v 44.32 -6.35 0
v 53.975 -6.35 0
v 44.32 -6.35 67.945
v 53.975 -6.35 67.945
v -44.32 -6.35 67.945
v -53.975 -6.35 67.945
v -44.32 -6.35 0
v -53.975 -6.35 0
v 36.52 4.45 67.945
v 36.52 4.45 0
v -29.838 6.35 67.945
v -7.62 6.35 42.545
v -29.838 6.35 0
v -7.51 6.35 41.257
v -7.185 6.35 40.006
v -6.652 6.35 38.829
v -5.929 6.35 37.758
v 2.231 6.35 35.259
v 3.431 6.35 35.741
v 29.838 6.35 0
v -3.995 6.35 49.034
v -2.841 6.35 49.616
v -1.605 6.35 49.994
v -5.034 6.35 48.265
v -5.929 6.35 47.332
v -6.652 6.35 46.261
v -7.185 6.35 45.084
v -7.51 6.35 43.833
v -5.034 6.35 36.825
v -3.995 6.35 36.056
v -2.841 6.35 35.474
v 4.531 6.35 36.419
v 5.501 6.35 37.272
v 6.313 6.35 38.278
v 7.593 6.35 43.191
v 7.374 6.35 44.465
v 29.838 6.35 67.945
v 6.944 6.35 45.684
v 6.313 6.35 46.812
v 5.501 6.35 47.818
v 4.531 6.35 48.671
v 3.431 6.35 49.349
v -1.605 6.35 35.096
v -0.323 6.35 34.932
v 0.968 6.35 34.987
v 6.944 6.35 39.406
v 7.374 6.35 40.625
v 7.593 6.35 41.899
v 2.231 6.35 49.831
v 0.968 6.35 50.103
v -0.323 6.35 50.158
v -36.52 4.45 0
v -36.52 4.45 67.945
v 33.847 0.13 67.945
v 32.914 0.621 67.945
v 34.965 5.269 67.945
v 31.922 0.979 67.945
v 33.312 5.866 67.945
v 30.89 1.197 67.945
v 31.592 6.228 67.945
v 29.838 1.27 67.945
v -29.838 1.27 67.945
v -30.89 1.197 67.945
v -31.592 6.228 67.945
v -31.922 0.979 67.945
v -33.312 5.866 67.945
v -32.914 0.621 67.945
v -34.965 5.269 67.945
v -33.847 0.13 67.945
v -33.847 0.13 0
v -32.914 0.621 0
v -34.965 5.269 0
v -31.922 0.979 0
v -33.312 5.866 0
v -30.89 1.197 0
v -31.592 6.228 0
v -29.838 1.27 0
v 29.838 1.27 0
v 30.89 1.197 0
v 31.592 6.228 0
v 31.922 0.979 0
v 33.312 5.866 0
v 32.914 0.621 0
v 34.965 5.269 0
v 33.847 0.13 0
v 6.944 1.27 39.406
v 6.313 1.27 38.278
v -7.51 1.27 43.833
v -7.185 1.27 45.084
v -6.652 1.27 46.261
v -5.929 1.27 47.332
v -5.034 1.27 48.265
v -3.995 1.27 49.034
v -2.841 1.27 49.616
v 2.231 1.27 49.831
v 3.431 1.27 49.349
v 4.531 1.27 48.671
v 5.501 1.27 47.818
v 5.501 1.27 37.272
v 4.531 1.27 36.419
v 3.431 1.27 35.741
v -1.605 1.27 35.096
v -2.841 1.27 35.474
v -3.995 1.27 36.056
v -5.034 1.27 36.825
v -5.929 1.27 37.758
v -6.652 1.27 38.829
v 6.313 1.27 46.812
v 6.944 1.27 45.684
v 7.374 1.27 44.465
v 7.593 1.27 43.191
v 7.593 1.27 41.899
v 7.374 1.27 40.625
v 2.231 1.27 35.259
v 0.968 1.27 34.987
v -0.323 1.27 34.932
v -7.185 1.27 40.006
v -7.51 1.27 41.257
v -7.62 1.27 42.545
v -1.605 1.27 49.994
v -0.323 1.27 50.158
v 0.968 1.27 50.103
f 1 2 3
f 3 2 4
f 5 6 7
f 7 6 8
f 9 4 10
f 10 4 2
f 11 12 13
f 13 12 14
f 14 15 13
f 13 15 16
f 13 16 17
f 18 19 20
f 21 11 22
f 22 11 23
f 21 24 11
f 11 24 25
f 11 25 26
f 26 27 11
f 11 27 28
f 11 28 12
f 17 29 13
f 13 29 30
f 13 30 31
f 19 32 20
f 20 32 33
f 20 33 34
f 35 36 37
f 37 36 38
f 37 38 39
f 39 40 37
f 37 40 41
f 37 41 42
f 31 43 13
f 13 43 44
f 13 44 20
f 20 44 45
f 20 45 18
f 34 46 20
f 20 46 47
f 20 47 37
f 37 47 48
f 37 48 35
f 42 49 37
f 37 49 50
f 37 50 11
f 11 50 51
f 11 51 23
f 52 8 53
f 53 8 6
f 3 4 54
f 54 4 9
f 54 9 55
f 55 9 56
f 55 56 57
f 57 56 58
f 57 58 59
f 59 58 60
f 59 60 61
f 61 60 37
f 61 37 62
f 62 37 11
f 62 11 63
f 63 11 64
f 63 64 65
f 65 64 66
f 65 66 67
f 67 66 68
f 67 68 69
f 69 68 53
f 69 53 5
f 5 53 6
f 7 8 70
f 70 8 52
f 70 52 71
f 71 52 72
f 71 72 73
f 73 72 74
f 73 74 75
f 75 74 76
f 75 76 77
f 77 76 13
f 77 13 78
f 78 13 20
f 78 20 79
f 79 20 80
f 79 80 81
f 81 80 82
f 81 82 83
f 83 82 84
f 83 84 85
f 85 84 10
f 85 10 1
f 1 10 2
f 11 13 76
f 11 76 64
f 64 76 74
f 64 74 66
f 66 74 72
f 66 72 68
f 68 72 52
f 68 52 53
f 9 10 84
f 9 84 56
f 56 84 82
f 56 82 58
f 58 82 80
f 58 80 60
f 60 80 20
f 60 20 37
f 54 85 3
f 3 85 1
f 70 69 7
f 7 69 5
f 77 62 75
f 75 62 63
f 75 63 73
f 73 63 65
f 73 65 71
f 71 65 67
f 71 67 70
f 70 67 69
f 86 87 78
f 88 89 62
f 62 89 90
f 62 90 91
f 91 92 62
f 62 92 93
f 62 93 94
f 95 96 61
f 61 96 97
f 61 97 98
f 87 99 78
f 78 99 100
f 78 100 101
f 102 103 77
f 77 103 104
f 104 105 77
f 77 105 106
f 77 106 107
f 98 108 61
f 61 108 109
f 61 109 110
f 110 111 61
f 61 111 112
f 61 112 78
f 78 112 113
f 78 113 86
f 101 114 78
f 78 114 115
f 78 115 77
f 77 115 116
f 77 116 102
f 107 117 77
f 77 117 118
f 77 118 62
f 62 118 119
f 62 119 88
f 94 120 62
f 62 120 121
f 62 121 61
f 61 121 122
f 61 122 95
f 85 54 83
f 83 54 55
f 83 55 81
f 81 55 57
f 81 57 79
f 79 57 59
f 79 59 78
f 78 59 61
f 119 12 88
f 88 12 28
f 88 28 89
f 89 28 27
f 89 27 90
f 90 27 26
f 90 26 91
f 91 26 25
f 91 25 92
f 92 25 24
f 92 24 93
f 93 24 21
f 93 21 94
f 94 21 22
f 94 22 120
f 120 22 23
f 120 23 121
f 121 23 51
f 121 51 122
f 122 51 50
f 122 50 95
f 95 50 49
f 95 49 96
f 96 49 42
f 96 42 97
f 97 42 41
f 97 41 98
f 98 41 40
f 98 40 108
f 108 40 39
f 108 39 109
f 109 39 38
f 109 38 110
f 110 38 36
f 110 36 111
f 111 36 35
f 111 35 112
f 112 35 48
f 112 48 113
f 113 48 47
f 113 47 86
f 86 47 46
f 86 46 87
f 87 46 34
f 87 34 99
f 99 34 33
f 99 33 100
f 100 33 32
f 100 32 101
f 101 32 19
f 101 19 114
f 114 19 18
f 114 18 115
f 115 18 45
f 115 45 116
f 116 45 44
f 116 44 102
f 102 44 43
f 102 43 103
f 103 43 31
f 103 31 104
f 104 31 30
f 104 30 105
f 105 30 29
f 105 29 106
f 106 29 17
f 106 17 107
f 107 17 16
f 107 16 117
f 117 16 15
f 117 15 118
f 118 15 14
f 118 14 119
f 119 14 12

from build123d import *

# Parameters (mm, degrees)
BOSS_EXTRUDE1_DEPTH = 67.945
FILLET1_R           = 12.7
CUT_EXTRUDE1_REACH  = 89.007
CUT_EXTRUDE2_REACH  = 89.699
SKETCH5_R           = 7.62


with BuildPart() as part:
    # Sketch1 → Boss-Extrude1 (new body)
    with BuildSketch(Plane.XY):
        Polygon((-53.975, -6.35), (-33.449406604, 6.35), (33.449406604, 6.35), (53.975, -6.35), align=None)
    extrude(amount=BOSS_EXTRUDE1_DEPTH)

    # Fillet1
    fillet1_edges = [part.edges().sort_by_distance(p)[0] for p in [
        (-33.449406604, 6.35, 33.9725),
        (33.449406604, 6.35, 33.9725),
    ]]
    fillet(fillet1_edges, radius=FILLET1_R)

    # Sketch3 → Cut-Extrude1 (cut, up to next)
    with BuildSketch(Plane.XY.offset(67.945), mode=Mode.PRIVATE) as cut_extrude1_sk1:
        with BuildLine():
            Line((-51.302080212, -10.669942107), (51.302080212, -10.669942107))
            Line((51.302080212, -10.669942107), (33.847478799, 0.12991316))
            ThreePointArc((33.847478799, 0.12991316), (31.922261025, 0.979438528), (29.838099116, 1.27))
            Line((29.838099116, 1.27), (-29.838099116, 1.27))
            ThreePointArc((-29.838099116, 1.27), (-31.922261025, 0.979438528), (-33.847478799, 0.12991316))
            Line((-33.847478799, 0.12991316), (-51.302080212, -10.669942107))
        make_face()
    cut_extrude1_tool1 = extrude(cut_extrude1_sk1.sketch, amount=-CUT_EXTRUDE1_REACH, mode=Mode.PRIVATE) & part.part
    add(cut_extrude1_tool1.solids().sort_by_distance((0, -5.166229, 67.945))[0], mode=Mode.SUBTRACT)

    # Sketch5 → Cut-Extrude2 (cut, up to next)
    with BuildSketch(Plane(origin=(0, 6.35, 0), x_dir=(1, 0, 0), z_dir=(0, 1, 0)), mode=Mode.PRIVATE) as cut_extrude2_sk1:
        with Locations(Location((0, -42.545, 0), (0, 0, 180))):
            Circle(SKETCH5_R)
    cut_extrude2_tool1 = extrude(cut_extrude2_sk1.sketch, amount=-CUT_EXTRUDE2_REACH, mode=Mode.PRIVATE) & part.part
    add(cut_extrude2_tool1.solids().sort_by_distance((0, 6.35, 42.545))[0], mode=Mode.SUBTRACT)


solid = part.part
